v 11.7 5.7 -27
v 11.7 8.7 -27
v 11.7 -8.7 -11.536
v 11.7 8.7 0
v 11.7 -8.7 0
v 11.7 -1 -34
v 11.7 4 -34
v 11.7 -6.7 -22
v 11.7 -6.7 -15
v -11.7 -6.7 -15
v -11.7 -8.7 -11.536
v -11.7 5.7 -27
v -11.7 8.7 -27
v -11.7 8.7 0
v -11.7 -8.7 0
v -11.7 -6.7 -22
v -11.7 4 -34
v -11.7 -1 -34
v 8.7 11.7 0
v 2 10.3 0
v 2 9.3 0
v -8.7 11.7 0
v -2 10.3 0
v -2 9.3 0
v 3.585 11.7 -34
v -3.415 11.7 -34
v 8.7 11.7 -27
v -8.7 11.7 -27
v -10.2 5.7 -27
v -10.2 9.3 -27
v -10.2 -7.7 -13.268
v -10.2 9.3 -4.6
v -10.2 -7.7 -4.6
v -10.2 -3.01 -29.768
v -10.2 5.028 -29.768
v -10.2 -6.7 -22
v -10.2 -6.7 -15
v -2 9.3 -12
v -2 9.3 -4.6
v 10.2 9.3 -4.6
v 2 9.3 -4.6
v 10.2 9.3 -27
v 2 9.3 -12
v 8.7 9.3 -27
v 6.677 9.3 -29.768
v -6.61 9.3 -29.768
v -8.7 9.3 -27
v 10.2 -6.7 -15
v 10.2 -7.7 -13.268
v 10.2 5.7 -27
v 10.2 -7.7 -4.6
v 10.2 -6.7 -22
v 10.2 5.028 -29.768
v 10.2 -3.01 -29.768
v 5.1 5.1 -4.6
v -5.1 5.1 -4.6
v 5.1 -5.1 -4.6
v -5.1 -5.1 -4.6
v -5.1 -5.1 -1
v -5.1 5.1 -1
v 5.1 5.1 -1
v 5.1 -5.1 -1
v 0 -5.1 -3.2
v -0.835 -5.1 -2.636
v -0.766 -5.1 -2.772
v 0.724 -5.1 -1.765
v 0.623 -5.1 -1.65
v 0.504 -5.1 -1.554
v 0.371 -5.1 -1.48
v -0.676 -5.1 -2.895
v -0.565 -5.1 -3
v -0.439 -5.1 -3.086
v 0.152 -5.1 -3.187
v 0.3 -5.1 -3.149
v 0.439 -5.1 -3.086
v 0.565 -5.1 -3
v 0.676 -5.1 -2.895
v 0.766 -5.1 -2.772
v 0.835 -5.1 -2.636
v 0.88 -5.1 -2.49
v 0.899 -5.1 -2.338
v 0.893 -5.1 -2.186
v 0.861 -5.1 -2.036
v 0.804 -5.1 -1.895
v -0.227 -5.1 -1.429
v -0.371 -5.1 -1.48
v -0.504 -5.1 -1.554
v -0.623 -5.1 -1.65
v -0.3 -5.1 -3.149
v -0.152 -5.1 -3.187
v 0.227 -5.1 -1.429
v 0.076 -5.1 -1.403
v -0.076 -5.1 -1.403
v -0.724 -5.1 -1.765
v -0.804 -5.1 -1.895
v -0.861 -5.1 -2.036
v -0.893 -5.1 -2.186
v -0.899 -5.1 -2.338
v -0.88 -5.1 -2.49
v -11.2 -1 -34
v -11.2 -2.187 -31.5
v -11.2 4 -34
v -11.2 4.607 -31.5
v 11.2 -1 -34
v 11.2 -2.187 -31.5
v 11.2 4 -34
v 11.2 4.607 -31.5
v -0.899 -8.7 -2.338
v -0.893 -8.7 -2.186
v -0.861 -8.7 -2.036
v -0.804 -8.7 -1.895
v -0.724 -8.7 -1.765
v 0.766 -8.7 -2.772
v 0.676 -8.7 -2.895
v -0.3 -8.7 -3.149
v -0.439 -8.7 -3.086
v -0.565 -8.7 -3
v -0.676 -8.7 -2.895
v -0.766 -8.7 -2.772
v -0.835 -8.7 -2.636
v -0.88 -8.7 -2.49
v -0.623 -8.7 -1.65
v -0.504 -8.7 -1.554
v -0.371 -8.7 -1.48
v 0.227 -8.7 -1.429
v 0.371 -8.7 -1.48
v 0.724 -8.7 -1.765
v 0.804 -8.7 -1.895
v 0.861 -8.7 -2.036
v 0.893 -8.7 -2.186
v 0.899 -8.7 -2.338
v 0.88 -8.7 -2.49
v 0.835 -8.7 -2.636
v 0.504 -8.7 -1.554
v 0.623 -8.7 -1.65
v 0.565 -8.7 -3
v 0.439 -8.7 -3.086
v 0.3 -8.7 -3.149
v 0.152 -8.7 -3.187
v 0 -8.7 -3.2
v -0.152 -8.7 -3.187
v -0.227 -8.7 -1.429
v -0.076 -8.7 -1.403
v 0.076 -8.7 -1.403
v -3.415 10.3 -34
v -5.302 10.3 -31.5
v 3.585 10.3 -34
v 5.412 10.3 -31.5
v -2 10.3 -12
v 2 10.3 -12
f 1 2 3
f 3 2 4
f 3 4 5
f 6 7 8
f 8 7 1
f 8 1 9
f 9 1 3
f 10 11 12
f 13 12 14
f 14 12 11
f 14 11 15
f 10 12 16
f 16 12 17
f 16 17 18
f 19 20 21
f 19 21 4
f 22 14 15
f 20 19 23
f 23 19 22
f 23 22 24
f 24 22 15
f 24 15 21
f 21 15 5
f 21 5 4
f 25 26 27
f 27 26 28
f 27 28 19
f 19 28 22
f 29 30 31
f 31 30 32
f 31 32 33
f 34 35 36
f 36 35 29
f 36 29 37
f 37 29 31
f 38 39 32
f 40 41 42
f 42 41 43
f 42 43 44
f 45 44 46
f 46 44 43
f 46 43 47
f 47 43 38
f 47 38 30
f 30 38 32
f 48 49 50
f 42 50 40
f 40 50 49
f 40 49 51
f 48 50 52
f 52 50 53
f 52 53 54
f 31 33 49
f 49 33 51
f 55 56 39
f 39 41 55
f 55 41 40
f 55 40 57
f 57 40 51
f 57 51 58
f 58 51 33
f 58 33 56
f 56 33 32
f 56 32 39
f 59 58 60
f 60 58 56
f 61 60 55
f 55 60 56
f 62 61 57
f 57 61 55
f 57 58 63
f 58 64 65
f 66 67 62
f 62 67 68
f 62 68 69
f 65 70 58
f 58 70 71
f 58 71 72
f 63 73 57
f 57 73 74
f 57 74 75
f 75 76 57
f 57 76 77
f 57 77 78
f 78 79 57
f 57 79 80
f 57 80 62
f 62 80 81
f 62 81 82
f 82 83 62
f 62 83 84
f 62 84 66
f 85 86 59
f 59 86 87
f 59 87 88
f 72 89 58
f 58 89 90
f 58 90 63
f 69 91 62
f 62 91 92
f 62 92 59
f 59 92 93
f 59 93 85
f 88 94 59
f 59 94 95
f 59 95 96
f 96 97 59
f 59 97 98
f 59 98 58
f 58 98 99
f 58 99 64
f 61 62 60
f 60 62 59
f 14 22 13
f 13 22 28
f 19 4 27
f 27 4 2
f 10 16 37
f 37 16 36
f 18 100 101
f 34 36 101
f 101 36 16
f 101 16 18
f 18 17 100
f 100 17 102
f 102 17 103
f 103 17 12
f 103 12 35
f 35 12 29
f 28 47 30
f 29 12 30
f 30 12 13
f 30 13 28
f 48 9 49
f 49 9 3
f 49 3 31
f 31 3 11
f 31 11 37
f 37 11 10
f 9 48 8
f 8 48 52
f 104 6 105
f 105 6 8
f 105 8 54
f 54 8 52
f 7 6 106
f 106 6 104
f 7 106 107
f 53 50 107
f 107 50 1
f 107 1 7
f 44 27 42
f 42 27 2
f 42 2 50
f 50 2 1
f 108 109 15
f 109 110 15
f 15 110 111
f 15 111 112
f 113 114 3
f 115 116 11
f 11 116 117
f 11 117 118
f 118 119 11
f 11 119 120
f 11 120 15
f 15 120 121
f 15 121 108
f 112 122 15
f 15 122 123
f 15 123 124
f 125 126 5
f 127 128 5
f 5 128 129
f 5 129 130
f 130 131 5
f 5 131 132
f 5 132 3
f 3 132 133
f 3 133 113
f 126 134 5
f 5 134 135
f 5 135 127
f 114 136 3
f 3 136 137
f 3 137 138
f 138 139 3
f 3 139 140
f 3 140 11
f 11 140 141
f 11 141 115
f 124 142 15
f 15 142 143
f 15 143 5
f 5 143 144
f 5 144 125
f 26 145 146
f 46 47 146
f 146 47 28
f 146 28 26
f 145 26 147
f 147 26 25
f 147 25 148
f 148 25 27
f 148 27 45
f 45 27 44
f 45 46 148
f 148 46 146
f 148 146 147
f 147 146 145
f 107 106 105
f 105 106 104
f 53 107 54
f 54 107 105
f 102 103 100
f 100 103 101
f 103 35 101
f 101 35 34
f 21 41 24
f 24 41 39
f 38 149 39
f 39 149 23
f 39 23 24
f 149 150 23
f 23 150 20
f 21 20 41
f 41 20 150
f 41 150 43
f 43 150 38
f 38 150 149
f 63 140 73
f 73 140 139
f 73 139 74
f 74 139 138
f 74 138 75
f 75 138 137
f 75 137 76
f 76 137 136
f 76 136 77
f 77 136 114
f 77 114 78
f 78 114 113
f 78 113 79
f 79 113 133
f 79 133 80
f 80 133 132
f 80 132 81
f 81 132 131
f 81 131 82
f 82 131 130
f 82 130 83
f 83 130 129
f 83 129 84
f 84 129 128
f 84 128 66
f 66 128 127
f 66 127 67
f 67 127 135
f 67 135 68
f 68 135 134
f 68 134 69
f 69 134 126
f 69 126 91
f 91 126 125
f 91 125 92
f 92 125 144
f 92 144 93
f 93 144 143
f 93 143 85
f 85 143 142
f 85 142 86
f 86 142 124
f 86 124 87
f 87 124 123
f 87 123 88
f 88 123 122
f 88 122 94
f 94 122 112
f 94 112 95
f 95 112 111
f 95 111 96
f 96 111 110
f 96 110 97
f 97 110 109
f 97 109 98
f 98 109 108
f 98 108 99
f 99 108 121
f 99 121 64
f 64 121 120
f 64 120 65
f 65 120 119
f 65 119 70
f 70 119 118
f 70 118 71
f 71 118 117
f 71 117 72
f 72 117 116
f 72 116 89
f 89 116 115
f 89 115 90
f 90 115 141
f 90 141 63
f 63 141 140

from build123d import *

# Parameters (mm, degrees)
SKETCH_1_W           = 23.4
SKETCH_1_H           = 23.4
EXTRUDE_1_DEPTH      = 38
CUT_EXTRUDE_START    = -4.6
SKETCH_1_3_W         = 20.4
SKETCH_1_3_H         = 17
CUT_EXTRUDE_1_DEPTH  = 37.846109588
CUT_EXTRUDE_START_2  = -1
SKETCH_1_4_W         = 10.2
SKETCH_1_4_H         = 10.2
CUT_EXTRUDE_2_DEPTH  = 41.446109588
CHAMFER_2_SIZE       = 3
CUT_EXTRUDE_3_DEPTH  = 47.135127614
CUT_EXTRUDE_4_REACH  = 46.688
CUT_EXTRUDE_5_DEPTH  = 43.900466198
CUT_EXTRUDE_6_DEPTH  = 42.340657953
SKETCH_10_W          = 4
SKETCH_10_H          = 1
CUT_EXTRUDE_10_DEPTH = 12
HOLE_WIZARD_1_D      = 1.8
HOLE_WIZARD_1_DEPTH  = 3.6


with BuildPart() as part:
    # 草图1 → 凸台-拉伸1 (new body)
    with BuildSketch(Plane.XY):
        Rectangle(SKETCH_1_W, SKETCH_1_H)
    extrude(amount=-EXTRUDE_1_DEPTH)

    # 草图1<3> → 切除-拉伸1 (cut, through all)
    with BuildSketch(Plane.XY.offset(CUT_EXTRUDE_START)):
        with Locations((0, 0.8)):
            Rectangle(SKETCH_1_3_W, SKETCH_1_3_H)
    extrude(amount=-CUT_EXTRUDE_1_DEPTH, mode=Mode.SUBTRACT)

    # 草图1<4> → 切除-拉伸2 (cut, through all)
    with BuildSketch(Plane.XY.offset(CUT_EXTRUDE_START_2)):
        Rectangle(SKETCH_1_4_W, SKETCH_1_4_H)
    extrude(amount=-CUT_EXTRUDE_2_DEPTH, mode=Mode.SUBTRACT)

    # 倒角2
    chamfer_2_edges = [part.edges().sort_by_distance(p)[0] for p in [
        (-11.7, 11.7, -19),
        (11.7, 11.7, -19),
    ]]
    chamfer(chamfer_2_edges, length=CHAMFER_2_SIZE)

    # 草图4 → 切除-拉伸3 (cut, through all)
    with BuildSketch(Plane(origin=(11.7, 0, 0), x_dir=(0, 0, -1), z_dir=(1, 0, 0))):
        Polygon((0, -11.7), (38, -11.7), (38, 8.7), (27, 8.7), (27, 5.7), (34, 4), (34, -1), (22, -6.7), (15, -6.7), (15, -8.7), (11.535898385, -8.7), (0, -8.7), align=None)
        Polygon((15, -6.7), (11.535898385, -8.7), (15, -8.7), align=None)
    extrude(amount=-CUT_EXTRUDE_3_DEPTH, mode=Mode.SUBTRACT)

    # 草图5 → 切除-拉伸4 (cut, up to next)
    with BuildSketch(Plane(origin=(0, 11.7, 0), x_dir=(1, 0, 0), z_dir=(0, 1, 0)), mode=Mode.PRIVATE) as cut_extrude_4_sk1:
        Polygon((-11.7, 27), (-8.7, 27), (-3.414837489, 34), (3.585162511, 34), (8.7, 27), (11.7, 27), (11.7, 38), (-11.7, 38), align=None)
    cut_extrude_4_tool1 = extrude(cut_extrude_4_sk1.sketch, amount=-CUT_EXTRUDE_4_REACH, mode=Mode.PRIVATE) & part.part
    add(cut_extrude_4_tool1.solids().sort_by_distance((-10.2, 11.7, -27.258565))[0], mode=Mode.SUBTRACT)

    # 草图6 → 切除-拉伸5 (cut, through all)
    with BuildSketch(Plane(origin=(11.7, 0, 0), x_dir=(0, 0, -1), z_dir=(1, 0, 0))):
        Polygon((29.767949192, 9.3), (31.5, 10.3), (34, 10.3), (34, 9.3), align=None)
    extrude(amount=-CUT_EXTRUDE_5_DEPTH, mode=Mode.SUBTRACT)

    # 草图7 → 切除-拉伸6 (cut, through all)
    with BuildSketch(Plane(origin=(0, 11.7, 0), x_dir=(1, 0, 0), z_dir=(0, 1, 0))):
        Polygon((-11.2, 34), (-10.2, 34), (-10.2, 29.767949192), (-11.2, 31.5), align=None)
        Polygon((10.2, 34), (10.2, 29.767949192), (11.2, 31.5), (11.2, 34), align=None)
    extrude(amount=-CUT_EXTRUDE_6_DEPTH, mode=Mode.SUBTRACT)

    # 草图10 → 切除-拉伸10 (cut)
    with BuildSketch(Plane.XY):
        with Locations((0, 9.8)):
            Rectangle(SKETCH_10_W, SKETCH_10_H)
    extrude(amount=-CUT_EXTRUDE_10_DEPTH, mode=Mode.SUBTRACT)

    # 孔1
    with Locations(Plane(origin=(0, -8.7, 0), x_dir=(-1, 0, 0), z_dir=(0, -1, 0))):
        with Locations((0, 2.3)):
            Hole(HOLE_WIZARD_1_D / 2, depth=HOLE_WIZARD_1_DEPTH)


solid = part.part
